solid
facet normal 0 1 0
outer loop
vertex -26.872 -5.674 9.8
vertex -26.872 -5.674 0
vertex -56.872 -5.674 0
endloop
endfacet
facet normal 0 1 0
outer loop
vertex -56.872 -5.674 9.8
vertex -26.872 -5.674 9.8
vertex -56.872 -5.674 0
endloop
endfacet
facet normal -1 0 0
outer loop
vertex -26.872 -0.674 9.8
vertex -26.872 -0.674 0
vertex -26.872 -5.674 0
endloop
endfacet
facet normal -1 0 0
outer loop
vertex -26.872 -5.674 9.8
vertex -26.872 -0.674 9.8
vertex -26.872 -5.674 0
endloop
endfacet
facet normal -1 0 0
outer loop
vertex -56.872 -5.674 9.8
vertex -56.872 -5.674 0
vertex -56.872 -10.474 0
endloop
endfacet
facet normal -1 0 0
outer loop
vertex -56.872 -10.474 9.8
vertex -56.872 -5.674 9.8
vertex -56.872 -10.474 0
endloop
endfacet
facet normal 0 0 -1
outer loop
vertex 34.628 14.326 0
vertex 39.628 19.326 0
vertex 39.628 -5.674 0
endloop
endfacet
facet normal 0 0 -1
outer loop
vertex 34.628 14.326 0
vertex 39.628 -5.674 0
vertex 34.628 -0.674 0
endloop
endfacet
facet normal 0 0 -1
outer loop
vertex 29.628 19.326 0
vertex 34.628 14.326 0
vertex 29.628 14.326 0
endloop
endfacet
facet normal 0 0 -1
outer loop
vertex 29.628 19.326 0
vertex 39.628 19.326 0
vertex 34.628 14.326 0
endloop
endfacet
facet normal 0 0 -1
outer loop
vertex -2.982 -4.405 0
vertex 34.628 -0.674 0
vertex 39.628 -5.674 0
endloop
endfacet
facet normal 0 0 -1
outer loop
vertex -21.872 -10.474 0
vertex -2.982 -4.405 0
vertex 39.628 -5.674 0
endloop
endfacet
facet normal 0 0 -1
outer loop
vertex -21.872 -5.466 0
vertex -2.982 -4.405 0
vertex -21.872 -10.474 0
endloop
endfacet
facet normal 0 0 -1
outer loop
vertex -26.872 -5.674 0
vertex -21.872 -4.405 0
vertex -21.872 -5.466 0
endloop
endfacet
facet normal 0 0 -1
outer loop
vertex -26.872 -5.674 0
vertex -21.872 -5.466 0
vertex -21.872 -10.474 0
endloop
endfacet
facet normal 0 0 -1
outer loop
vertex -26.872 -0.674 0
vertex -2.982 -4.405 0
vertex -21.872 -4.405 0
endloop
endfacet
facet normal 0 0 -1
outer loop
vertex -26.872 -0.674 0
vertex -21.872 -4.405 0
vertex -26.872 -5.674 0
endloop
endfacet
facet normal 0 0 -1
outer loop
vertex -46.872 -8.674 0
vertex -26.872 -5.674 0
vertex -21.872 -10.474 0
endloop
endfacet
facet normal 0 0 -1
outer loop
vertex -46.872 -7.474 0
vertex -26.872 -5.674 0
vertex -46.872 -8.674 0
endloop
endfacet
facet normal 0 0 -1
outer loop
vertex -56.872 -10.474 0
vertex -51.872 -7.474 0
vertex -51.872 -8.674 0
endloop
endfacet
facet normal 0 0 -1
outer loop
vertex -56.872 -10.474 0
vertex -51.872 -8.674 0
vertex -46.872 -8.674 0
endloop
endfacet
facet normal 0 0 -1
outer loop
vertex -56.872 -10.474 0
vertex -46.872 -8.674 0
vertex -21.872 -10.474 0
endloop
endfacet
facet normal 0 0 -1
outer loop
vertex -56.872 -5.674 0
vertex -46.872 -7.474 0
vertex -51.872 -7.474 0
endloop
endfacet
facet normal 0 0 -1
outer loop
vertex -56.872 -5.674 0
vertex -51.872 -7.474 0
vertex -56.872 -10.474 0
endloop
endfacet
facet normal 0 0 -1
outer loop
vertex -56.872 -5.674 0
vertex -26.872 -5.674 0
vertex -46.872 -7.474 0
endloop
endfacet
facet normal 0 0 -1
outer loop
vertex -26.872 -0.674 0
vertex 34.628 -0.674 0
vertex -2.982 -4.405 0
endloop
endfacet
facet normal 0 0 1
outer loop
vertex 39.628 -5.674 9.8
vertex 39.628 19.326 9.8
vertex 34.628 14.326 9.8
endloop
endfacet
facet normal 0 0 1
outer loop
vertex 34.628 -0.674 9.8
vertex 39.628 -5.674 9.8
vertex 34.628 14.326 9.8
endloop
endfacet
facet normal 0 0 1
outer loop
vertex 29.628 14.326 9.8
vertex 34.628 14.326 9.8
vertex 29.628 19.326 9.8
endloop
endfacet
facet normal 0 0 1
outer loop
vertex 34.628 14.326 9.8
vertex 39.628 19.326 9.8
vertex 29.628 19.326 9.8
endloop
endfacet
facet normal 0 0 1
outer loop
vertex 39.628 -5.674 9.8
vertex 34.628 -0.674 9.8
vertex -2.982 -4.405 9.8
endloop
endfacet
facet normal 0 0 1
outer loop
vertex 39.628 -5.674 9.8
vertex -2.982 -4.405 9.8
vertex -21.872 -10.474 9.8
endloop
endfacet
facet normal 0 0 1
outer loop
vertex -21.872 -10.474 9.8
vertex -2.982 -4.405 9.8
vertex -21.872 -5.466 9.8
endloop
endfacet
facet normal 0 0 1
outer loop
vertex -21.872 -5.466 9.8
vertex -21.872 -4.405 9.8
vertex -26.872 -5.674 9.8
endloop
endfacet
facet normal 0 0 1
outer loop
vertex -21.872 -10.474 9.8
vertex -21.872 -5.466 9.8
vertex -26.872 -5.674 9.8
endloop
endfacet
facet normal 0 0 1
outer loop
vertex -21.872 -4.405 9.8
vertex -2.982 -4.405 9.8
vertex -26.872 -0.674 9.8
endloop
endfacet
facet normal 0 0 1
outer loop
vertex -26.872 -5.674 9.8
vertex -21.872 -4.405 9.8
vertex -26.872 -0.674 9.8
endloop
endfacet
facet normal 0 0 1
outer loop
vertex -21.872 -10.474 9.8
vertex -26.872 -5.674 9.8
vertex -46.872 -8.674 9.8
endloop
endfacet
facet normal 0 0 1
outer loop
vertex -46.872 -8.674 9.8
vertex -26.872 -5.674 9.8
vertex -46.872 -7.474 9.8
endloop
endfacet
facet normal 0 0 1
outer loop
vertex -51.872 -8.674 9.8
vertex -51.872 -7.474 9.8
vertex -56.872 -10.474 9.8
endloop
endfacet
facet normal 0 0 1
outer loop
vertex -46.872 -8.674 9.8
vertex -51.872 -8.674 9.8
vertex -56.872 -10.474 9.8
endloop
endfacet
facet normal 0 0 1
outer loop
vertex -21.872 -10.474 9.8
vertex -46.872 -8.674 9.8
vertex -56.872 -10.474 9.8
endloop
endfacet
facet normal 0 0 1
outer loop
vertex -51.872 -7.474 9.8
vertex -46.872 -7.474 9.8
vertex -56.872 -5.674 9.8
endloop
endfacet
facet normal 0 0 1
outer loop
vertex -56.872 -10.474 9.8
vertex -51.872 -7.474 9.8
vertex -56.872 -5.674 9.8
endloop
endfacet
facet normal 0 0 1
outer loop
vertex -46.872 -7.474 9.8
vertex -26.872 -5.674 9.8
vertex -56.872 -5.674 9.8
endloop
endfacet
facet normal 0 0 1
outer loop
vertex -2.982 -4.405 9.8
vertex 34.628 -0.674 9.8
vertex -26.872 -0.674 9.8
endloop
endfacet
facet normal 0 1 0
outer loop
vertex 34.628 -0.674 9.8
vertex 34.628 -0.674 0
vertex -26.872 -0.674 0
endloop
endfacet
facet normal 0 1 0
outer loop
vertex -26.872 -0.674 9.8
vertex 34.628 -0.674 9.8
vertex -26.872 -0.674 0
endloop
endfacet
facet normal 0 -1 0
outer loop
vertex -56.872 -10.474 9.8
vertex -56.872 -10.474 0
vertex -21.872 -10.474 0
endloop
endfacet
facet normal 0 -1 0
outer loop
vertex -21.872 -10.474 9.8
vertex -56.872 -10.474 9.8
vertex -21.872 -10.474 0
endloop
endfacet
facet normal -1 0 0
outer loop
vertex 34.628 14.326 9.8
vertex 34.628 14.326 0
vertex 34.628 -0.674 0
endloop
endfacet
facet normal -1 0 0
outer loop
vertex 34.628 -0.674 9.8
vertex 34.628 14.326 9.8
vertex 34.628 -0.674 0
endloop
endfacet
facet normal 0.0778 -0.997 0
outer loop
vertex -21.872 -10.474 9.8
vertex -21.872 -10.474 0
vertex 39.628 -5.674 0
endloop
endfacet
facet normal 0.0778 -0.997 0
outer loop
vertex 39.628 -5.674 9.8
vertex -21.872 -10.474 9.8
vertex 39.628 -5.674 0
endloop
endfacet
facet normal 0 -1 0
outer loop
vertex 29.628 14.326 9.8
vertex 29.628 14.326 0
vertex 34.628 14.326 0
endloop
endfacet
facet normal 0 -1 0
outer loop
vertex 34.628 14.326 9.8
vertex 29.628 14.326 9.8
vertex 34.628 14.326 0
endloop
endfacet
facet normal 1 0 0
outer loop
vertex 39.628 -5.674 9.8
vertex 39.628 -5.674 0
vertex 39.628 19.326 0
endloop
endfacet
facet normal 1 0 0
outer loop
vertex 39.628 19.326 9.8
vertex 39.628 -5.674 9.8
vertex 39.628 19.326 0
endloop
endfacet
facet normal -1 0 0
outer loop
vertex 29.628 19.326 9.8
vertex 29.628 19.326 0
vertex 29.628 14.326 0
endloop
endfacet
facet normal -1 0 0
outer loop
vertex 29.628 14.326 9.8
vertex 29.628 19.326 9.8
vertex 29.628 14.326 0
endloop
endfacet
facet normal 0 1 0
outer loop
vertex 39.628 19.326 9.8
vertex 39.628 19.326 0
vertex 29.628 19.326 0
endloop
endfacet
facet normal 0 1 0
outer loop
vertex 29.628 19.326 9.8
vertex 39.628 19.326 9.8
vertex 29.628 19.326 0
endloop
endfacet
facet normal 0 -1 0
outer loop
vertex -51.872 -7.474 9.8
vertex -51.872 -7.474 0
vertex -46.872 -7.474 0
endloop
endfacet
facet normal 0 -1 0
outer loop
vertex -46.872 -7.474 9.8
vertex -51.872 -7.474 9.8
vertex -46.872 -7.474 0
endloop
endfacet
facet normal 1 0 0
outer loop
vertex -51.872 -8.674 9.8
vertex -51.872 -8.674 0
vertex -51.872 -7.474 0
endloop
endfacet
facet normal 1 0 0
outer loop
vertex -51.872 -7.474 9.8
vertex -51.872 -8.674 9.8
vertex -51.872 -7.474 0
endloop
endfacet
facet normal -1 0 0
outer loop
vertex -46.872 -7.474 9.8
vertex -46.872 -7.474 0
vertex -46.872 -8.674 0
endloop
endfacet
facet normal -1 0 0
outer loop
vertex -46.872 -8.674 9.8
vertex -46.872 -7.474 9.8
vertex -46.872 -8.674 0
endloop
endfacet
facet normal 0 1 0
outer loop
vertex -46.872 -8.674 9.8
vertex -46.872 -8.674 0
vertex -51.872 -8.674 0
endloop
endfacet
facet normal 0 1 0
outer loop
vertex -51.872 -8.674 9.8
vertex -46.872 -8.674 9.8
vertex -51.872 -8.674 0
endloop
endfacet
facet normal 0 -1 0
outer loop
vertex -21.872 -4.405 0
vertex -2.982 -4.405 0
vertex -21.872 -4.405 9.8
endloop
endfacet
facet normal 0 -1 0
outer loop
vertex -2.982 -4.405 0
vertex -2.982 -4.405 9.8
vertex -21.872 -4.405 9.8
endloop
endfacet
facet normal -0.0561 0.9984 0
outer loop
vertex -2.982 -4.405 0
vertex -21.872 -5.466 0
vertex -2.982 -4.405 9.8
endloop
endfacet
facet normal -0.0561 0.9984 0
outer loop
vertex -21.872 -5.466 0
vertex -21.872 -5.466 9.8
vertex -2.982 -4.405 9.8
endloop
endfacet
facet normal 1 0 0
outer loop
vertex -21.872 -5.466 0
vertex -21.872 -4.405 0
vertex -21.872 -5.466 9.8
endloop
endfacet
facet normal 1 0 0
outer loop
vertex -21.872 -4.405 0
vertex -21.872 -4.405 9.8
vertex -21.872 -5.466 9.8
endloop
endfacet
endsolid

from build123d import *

# Parameters (mm, degrees)
SKETCH_W     = 5
SKETCH_H     = 1.2
PAD_DEPTH    = 9.8
POCKET_DEPTH = 9.801


with BuildPart() as part:
    # Sketch → Pad (new body)
    with BuildSketch(Plane.XY):
        Polygon((-26.871767, -5.673633), (-56.871767, -5.673633), (-56.871767, -10.473633), (-21.871767, -10.473633), (39.628233, -5.673633), (39.628233, 19.326367), (29.628233, 19.326367), (29.628233, 14.326367), (34.628233, 14.326367), (34.628233, -0.673633), (-26.871767, -0.673633), align=None)
        with Locations((-49.371767, -8.073633)):
            Rectangle(SKETCH_W, SKETCH_H, mode=Mode.SUBTRACT)
    extrude(amount=PAD_DEPTH)

    # Sketch001 → Pocket (cut, through all)
    with BuildSketch(Plane.XY.offset(9.8)):
        Polygon((-21.871767, -4.405271), (-21.871767, -5.465759), (-2.982301, -4.405271), align=None)
    extrude(amount=-POCKET_DEPTH, mode=Mode.SUBTRACT)


solid = part.part
